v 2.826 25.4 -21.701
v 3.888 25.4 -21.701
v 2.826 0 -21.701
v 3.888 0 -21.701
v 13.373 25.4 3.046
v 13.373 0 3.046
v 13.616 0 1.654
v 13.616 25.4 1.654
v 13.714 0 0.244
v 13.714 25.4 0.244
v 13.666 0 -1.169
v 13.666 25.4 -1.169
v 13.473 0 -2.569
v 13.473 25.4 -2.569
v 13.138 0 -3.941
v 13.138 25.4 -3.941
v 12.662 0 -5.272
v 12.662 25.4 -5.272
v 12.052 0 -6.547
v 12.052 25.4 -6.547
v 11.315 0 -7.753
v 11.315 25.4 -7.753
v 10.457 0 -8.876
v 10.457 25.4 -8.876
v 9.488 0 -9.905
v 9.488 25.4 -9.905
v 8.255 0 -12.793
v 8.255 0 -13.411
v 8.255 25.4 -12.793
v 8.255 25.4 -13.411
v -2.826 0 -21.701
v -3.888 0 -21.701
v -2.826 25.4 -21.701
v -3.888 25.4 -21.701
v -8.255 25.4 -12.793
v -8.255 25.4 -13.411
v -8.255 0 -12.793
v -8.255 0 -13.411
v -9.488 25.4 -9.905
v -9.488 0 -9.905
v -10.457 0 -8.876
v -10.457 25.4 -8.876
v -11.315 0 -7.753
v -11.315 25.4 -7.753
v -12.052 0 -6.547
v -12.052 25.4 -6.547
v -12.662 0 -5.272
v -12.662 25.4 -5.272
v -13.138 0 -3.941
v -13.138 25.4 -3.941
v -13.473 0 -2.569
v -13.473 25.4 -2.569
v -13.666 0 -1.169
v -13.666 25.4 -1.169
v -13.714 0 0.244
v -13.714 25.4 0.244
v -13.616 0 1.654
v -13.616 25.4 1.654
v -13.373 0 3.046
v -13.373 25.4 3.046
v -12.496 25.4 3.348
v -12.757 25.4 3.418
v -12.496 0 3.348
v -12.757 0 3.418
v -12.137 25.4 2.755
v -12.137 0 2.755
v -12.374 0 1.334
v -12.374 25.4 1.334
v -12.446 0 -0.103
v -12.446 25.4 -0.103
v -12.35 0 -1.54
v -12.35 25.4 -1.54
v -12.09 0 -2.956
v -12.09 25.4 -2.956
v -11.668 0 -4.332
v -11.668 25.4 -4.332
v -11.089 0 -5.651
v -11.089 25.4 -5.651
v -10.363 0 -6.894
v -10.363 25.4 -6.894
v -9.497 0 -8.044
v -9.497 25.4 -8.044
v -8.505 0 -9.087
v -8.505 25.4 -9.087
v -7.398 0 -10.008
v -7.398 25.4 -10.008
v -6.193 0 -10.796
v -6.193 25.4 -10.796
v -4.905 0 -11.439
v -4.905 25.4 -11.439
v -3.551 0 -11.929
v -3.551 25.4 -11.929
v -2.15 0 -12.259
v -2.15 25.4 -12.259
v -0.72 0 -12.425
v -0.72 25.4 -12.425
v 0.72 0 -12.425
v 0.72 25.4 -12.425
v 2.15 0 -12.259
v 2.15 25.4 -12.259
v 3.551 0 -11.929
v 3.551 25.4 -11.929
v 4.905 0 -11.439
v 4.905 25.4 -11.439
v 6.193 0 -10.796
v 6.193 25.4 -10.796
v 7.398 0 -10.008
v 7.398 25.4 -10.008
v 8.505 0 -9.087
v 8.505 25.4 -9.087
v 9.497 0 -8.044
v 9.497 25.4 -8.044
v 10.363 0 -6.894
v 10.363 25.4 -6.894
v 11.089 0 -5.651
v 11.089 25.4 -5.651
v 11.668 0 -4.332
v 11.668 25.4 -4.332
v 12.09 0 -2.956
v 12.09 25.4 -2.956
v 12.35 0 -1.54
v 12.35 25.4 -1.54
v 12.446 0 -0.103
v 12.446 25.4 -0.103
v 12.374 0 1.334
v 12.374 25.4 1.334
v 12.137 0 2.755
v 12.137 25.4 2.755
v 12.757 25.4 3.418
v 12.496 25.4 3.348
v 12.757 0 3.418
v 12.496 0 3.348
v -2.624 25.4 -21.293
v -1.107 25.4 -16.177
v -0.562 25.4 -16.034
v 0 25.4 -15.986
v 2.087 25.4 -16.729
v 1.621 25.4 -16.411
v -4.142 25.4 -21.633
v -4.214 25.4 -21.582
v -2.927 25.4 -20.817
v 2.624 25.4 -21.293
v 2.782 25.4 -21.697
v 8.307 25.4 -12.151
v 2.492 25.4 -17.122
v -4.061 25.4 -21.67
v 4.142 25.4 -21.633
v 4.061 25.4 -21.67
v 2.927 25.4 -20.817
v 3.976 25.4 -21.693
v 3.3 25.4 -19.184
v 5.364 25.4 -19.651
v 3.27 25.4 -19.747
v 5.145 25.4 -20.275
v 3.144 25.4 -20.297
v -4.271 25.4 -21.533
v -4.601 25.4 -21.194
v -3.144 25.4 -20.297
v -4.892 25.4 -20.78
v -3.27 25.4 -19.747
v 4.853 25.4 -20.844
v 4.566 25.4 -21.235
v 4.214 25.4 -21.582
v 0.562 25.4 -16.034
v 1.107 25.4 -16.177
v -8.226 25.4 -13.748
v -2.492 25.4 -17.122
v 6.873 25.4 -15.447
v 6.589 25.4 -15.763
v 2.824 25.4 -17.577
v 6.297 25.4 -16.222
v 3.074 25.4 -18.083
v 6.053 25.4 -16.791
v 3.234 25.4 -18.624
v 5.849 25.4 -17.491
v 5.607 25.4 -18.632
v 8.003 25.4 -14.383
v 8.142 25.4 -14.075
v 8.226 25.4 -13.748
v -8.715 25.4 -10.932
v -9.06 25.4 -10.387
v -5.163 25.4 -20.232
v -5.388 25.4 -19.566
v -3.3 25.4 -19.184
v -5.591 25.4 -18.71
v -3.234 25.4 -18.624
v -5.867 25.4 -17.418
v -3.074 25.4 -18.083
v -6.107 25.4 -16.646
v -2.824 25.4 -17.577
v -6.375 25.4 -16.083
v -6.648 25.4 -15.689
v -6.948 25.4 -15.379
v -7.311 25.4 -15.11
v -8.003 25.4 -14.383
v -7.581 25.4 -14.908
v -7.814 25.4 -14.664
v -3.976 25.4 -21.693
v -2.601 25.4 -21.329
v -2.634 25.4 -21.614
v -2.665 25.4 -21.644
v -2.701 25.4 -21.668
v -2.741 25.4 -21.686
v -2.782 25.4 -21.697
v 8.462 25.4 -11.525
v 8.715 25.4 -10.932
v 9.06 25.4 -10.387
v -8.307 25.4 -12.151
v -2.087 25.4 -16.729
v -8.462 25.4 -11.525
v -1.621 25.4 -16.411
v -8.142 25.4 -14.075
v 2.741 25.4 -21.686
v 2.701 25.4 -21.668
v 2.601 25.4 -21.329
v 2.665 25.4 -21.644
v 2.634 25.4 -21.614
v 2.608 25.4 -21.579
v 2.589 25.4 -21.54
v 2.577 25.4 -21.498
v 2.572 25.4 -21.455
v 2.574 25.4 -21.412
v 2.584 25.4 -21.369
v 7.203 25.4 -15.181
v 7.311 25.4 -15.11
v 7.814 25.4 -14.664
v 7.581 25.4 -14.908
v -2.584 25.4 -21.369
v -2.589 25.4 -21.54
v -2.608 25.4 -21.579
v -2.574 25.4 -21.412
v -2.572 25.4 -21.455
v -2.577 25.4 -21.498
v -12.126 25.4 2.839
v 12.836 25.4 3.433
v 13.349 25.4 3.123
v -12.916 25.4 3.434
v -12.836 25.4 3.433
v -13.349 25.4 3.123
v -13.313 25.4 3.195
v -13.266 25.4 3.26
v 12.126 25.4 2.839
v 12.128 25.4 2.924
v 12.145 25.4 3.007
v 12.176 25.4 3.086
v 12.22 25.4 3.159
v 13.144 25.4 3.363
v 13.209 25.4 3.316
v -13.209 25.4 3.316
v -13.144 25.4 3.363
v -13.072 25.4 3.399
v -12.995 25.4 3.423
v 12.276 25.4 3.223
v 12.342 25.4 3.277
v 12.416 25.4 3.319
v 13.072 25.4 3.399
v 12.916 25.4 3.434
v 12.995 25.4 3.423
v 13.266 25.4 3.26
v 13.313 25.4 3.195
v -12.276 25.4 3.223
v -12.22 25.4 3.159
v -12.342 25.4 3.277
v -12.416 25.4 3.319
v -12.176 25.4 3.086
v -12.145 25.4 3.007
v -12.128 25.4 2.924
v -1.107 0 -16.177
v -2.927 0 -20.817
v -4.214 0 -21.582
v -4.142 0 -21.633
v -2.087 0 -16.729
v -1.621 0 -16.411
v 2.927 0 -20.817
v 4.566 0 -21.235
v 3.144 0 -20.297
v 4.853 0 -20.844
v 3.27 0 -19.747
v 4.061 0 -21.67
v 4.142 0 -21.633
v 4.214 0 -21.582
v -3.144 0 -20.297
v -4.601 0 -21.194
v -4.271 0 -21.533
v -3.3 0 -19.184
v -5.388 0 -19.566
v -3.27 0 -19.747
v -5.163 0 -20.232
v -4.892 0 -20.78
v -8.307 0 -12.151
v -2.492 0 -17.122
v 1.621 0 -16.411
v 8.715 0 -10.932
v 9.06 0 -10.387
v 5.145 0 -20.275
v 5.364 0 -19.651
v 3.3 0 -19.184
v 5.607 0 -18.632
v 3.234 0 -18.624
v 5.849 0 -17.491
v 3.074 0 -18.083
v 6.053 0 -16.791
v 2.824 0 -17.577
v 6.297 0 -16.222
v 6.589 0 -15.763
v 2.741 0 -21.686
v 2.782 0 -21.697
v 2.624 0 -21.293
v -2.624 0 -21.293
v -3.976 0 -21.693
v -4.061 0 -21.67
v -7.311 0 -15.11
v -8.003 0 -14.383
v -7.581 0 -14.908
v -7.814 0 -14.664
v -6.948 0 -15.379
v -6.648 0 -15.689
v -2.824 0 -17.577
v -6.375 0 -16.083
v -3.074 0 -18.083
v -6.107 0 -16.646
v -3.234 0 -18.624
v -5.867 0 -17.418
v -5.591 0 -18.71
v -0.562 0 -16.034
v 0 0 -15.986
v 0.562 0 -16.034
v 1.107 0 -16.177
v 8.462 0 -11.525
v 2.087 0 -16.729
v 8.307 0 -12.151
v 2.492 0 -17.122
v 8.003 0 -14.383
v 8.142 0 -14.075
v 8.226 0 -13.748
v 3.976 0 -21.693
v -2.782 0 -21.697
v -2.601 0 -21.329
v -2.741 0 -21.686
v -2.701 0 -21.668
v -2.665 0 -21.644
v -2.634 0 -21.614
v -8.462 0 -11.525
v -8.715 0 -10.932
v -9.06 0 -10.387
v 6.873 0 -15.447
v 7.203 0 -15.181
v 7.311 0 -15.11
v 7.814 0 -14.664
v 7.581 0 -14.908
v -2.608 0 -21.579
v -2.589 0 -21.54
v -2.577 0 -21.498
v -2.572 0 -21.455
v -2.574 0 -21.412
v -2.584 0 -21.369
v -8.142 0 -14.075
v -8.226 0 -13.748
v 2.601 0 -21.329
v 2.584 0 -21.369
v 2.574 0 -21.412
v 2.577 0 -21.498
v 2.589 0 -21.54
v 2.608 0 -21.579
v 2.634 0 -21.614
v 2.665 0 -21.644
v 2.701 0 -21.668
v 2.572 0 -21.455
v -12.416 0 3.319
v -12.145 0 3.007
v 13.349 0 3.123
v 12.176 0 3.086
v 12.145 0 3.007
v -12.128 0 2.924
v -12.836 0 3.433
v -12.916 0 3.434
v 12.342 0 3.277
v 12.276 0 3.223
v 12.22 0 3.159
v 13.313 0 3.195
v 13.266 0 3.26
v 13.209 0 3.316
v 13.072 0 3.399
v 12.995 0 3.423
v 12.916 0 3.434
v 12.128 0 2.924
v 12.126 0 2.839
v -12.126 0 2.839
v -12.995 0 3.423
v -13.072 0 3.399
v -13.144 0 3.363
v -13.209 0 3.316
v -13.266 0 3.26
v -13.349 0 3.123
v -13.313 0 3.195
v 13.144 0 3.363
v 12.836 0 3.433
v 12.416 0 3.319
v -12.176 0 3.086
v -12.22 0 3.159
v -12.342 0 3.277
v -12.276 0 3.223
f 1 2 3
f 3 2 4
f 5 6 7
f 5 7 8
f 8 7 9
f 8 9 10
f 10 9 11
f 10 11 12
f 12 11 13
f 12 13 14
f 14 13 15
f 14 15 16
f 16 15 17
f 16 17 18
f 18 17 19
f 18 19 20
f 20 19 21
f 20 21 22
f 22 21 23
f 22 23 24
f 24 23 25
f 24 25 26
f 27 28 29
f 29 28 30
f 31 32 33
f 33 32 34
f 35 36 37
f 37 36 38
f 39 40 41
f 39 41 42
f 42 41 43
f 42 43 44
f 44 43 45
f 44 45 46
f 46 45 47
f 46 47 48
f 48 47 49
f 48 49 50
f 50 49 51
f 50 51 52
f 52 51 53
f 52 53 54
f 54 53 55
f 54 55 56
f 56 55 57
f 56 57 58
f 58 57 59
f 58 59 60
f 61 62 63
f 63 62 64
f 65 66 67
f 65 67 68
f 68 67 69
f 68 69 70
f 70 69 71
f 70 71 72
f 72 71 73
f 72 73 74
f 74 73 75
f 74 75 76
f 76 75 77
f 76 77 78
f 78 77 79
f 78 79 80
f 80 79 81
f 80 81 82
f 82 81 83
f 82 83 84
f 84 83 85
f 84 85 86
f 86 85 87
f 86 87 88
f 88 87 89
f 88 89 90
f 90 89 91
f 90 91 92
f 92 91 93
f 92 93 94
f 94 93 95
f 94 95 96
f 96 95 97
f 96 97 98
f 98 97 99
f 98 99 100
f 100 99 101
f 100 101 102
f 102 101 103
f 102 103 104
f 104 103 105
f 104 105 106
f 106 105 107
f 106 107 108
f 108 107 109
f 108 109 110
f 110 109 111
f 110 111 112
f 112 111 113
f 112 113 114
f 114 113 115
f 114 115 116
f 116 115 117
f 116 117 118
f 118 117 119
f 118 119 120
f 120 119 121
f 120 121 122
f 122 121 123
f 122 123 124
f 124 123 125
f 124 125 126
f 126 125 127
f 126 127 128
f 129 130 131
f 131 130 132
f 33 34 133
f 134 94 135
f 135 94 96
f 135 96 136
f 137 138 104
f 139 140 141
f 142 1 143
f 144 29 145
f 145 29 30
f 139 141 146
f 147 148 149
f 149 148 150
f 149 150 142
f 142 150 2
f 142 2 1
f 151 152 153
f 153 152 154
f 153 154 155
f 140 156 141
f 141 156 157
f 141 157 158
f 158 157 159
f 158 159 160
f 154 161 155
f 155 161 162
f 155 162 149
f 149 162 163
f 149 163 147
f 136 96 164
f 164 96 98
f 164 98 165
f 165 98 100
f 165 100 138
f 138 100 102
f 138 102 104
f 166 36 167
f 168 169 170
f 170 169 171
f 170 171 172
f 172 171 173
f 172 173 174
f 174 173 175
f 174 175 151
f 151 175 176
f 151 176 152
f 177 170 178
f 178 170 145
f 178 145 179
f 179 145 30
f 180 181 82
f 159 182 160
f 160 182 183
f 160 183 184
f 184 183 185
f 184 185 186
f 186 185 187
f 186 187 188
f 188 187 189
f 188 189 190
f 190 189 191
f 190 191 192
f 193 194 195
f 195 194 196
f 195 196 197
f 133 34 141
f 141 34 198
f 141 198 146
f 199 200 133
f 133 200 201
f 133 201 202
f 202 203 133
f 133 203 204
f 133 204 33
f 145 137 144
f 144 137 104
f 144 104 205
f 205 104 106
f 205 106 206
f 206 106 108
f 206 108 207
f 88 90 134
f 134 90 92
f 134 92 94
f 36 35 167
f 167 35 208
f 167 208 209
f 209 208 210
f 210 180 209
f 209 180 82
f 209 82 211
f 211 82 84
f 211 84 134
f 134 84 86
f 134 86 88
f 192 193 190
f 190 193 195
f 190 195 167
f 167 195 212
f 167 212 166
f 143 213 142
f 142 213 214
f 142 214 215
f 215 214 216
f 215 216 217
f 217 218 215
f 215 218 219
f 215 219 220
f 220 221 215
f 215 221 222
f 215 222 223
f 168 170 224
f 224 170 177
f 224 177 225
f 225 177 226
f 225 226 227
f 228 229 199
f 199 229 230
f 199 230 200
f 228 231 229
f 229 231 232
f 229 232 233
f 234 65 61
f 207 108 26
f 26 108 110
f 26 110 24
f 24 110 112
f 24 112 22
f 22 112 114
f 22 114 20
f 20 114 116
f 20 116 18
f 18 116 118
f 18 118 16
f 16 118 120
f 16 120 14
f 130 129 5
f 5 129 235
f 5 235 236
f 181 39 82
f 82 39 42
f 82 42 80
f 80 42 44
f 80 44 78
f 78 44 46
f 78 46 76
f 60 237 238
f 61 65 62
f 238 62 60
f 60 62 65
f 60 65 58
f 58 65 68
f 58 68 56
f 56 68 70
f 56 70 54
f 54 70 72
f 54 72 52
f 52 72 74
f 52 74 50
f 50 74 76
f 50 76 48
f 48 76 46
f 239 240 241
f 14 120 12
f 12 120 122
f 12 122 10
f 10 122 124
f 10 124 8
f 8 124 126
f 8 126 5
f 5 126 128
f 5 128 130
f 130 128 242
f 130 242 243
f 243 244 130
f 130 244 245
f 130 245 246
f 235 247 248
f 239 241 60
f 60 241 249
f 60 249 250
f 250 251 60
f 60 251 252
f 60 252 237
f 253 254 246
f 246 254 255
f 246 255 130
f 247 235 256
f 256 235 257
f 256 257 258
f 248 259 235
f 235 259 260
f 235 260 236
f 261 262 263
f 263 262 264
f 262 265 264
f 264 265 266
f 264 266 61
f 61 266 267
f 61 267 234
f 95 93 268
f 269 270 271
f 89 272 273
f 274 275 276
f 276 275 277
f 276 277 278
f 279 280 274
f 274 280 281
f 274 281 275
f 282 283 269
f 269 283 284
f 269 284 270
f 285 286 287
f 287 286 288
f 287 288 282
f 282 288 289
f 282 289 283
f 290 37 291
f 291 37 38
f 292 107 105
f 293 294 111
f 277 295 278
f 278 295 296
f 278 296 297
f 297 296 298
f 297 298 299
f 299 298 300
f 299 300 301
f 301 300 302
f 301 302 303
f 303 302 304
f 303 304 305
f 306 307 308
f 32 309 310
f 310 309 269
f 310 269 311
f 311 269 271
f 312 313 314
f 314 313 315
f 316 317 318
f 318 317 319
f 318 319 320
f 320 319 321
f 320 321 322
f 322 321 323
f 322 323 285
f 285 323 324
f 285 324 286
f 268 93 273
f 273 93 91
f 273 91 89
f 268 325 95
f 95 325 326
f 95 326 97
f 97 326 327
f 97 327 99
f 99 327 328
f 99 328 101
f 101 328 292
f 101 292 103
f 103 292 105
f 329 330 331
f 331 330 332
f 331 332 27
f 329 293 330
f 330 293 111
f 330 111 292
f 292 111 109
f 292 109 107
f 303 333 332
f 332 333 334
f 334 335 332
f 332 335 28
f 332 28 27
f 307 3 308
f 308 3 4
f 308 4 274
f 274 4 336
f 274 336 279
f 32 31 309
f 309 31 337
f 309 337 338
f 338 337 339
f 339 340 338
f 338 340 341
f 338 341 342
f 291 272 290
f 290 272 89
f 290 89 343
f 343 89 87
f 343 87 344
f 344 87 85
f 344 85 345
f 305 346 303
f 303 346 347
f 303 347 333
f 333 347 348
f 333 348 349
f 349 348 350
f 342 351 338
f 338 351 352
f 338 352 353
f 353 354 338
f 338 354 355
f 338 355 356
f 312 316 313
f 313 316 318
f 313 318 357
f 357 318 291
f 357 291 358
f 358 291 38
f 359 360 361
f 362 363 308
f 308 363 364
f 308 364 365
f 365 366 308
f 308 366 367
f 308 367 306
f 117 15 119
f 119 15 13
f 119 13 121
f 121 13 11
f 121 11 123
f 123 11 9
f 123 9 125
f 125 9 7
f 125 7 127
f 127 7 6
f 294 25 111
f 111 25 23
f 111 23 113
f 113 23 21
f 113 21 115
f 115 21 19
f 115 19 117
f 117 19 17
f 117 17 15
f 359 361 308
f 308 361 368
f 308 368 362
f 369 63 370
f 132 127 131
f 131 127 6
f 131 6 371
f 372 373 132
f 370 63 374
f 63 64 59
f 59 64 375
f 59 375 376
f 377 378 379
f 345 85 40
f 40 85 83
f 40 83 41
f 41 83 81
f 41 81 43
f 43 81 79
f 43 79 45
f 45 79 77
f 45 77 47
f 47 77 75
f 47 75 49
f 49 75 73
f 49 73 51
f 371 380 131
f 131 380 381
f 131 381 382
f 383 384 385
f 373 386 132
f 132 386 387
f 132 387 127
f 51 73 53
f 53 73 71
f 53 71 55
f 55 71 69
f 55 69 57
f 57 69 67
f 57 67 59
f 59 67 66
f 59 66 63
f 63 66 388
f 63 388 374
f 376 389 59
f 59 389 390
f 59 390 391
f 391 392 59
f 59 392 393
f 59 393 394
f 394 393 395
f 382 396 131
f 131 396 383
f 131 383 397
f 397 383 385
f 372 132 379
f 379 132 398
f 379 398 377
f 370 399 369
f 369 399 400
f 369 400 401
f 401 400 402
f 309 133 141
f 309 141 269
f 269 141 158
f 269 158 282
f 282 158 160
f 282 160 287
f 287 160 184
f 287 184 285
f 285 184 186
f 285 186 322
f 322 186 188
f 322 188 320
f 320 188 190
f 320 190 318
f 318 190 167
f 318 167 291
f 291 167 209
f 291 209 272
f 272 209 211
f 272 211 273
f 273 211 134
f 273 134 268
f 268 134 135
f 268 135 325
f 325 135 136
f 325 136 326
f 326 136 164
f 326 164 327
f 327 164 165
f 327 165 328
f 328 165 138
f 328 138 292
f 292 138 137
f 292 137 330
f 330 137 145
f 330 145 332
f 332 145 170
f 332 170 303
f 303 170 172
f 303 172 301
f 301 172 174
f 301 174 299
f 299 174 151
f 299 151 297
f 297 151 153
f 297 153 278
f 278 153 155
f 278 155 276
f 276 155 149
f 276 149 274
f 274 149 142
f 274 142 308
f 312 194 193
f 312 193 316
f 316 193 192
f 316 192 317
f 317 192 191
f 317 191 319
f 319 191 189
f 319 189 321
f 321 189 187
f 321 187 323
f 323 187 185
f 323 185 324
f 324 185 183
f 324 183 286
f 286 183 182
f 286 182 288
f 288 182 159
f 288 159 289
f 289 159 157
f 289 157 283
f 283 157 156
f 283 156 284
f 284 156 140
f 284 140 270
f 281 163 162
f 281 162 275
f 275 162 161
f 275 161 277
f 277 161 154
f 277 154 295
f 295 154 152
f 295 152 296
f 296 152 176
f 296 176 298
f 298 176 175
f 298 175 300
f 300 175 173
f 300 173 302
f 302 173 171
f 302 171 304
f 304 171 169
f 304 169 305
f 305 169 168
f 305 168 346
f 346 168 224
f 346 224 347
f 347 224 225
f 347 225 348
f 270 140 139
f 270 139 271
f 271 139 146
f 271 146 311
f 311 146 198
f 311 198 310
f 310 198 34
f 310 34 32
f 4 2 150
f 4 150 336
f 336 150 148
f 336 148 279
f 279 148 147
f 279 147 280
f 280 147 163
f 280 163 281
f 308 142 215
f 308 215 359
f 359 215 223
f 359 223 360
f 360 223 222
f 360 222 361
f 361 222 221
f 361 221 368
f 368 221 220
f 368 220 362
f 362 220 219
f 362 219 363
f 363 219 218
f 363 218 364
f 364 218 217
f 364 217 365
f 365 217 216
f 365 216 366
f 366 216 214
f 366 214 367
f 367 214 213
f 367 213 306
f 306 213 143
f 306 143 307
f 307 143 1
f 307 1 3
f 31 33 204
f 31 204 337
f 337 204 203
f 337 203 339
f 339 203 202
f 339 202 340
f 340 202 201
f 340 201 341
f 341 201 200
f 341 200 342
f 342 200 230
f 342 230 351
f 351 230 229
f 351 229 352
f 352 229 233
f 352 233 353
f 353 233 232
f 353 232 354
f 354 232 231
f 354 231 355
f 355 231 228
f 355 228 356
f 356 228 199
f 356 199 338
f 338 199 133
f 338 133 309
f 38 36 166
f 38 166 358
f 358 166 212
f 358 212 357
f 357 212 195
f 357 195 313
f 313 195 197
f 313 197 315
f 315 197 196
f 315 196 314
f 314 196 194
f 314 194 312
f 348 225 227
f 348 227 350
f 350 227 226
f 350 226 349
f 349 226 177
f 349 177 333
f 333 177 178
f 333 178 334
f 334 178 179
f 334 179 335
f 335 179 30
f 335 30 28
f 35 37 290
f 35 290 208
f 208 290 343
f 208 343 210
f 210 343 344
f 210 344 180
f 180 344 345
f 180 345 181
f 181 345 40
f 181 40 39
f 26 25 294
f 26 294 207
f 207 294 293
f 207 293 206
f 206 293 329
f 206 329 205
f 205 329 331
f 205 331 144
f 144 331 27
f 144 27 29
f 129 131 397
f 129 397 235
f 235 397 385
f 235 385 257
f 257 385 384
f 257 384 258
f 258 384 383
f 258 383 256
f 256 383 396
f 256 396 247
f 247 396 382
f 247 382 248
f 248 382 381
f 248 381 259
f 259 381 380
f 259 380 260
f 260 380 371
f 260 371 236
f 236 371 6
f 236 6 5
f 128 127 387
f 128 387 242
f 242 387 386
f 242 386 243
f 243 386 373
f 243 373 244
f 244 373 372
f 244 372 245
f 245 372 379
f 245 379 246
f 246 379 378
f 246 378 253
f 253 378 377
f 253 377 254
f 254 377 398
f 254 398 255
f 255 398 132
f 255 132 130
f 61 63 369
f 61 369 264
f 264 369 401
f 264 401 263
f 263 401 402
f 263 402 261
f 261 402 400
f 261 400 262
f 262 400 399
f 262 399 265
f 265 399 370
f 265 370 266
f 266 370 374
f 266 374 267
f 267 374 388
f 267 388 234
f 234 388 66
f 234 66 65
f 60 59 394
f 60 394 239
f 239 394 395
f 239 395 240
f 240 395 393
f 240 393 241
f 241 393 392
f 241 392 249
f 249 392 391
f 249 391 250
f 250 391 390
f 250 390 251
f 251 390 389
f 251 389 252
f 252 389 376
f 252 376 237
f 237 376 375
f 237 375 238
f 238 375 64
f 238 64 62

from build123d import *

# Parameters (mm, degrees)
BOSS_EXTRUDE1_DEPTH = 25.4
SKETCH2_R           = 3.302
CUT_EXTRUDE1_DEPTH  = 25.4
FILLET1_R           = 0.508
FILLET2_R           = 0.254
FILLET3_R           = 2
FILLET4_R           = 4
FILLET5_R           = 0.5


with BuildPart() as part:
    # Sketch1 → Boss-Extrude1 (new body)
    with BuildSketch(Plane(origin=(0, 0, 0), x_dir=(1, 0, 0), z_dir=(0, 1, 0))):
        with BuildLine():
            Line((-13.248638633, -3.549962023), (-12.021912834, -3.221261835))
            ThreePointArc((-12.021912834, -3.221261835), (0, 12.446), (12.021912834, -3.221261835))
            Line((12.021912834, -3.221261835), (13.248638633, -3.549962023))
            ThreePointArc((13.248638633, -3.549962023), (12.968835743, 4.465193777), (8.255, 10.953703985))
            Line((8.255, 10.953703985), (8.255, 14.716))
            Line((8.255, 14.716), (8.255, 21.701))
            Line((8.255, 21.701), (-8.255, 21.701))
            Line((-8.255, 21.701), (-8.255, 14.716))
            Line((-8.255, 14.716), (-8.255, 10.953703985))
            ThreePointArc((-8.255, 10.953703985), (-12.968835743, 4.465193777), (-13.248638633, -3.549962023))
        make_face()
    extrude(amount=BOSS_EXTRUDE1_DEPTH)

    # Sketch2 → Cut-Extrude1 (cut)
    with BuildSketch(Plane(origin=(0, 25.4, 0), x_dir=(1, 0, 0), z_dir=(0, 1, 0))):
        with Locations((0, 19.28817272)):
            Circle(SKETCH2_R)
        with BuildLine():
            Line((-8.255, 21.701), (-8.255, 14.716))
            add(Edge.make_bspline(
                [(-8.255, 14.716), (-4.739338783, 15.636189596), (-6.519245554, 19.893117267), (-4.063143766, 21.701)],
                knots=[0, 0, 0, 0, 1, 1, 1, 1], degree=3))
            Line((-4.063143766, 21.701), (-8.255, 21.701))
        make_face()
        with BuildLine():
            Line((8.255, 21.701), (8.255, 14.716))
            add(Edge.make_bspline(
                [(8.255, 14.716), (4.739338783, 15.636189596), (6.519245554, 19.893117267), (4.063143766, 21.701)],
                knots=[0, 0, 0, 0, 1, 1, 1, 1], degree=3))
            Line((4.063143766, 21.701), (8.255, 21.701))
        make_face()
    extrude(amount=-CUT_EXTRUDE1_DEPTH, mode=Mode.SUBTRACT)

    # Fillet1
    fillet1_edges = [part.edges().sort_by_distance(p)[0] for p in [
        (-4.063143766, 12.7, -21.701),
        (4.063143766, 12.7, -21.701),
    ]]
    fillet(fillet1_edges, radius=FILLET1_R)

    # Fillet2
    fillet2_edges = [part.edges().sort_by_distance(p)[0] for p in [
        (2.254211285, 12.7, -21.701),
        (-2.254211285, 12.7, -21.701),
    ]]
    fillet(fillet2_edges, radius=FILLET2_R)

    # Fillet3
    fillet3_edges = [part.edges().sort_by_distance(p)[0] for p in [
        (-8.255, 12.7, -14.716),
        (8.255, 12.7, -14.716),
    ]]
    fillet(fillet3_edges, radius=FILLET3_R)

    # Fillet4
    fillet4_edges = [part.edges().sort_by_distance(p)[0] for p in [
        (-8.255, 12.7, -10.953703985),
        (8.255, 12.7, -10.953703985),
    ]]
    fillet(fillet4_edges, radius=FILLET4_R)

    # Fillet5
    fillet5_edges = [part.edges().sort_by_distance(p)[0] for p in [
        (13.248638633, 12.7, 3.549962023),
        (12.021912834, 12.7, 3.221261835),
        (-12.021912834, 12.7, 3.221261835),
        (-13.248638633, 12.7, 3.549962023),
    ]]
    fillet(fillet5_edges, radius=FILLET5_R)


solid = part.part
